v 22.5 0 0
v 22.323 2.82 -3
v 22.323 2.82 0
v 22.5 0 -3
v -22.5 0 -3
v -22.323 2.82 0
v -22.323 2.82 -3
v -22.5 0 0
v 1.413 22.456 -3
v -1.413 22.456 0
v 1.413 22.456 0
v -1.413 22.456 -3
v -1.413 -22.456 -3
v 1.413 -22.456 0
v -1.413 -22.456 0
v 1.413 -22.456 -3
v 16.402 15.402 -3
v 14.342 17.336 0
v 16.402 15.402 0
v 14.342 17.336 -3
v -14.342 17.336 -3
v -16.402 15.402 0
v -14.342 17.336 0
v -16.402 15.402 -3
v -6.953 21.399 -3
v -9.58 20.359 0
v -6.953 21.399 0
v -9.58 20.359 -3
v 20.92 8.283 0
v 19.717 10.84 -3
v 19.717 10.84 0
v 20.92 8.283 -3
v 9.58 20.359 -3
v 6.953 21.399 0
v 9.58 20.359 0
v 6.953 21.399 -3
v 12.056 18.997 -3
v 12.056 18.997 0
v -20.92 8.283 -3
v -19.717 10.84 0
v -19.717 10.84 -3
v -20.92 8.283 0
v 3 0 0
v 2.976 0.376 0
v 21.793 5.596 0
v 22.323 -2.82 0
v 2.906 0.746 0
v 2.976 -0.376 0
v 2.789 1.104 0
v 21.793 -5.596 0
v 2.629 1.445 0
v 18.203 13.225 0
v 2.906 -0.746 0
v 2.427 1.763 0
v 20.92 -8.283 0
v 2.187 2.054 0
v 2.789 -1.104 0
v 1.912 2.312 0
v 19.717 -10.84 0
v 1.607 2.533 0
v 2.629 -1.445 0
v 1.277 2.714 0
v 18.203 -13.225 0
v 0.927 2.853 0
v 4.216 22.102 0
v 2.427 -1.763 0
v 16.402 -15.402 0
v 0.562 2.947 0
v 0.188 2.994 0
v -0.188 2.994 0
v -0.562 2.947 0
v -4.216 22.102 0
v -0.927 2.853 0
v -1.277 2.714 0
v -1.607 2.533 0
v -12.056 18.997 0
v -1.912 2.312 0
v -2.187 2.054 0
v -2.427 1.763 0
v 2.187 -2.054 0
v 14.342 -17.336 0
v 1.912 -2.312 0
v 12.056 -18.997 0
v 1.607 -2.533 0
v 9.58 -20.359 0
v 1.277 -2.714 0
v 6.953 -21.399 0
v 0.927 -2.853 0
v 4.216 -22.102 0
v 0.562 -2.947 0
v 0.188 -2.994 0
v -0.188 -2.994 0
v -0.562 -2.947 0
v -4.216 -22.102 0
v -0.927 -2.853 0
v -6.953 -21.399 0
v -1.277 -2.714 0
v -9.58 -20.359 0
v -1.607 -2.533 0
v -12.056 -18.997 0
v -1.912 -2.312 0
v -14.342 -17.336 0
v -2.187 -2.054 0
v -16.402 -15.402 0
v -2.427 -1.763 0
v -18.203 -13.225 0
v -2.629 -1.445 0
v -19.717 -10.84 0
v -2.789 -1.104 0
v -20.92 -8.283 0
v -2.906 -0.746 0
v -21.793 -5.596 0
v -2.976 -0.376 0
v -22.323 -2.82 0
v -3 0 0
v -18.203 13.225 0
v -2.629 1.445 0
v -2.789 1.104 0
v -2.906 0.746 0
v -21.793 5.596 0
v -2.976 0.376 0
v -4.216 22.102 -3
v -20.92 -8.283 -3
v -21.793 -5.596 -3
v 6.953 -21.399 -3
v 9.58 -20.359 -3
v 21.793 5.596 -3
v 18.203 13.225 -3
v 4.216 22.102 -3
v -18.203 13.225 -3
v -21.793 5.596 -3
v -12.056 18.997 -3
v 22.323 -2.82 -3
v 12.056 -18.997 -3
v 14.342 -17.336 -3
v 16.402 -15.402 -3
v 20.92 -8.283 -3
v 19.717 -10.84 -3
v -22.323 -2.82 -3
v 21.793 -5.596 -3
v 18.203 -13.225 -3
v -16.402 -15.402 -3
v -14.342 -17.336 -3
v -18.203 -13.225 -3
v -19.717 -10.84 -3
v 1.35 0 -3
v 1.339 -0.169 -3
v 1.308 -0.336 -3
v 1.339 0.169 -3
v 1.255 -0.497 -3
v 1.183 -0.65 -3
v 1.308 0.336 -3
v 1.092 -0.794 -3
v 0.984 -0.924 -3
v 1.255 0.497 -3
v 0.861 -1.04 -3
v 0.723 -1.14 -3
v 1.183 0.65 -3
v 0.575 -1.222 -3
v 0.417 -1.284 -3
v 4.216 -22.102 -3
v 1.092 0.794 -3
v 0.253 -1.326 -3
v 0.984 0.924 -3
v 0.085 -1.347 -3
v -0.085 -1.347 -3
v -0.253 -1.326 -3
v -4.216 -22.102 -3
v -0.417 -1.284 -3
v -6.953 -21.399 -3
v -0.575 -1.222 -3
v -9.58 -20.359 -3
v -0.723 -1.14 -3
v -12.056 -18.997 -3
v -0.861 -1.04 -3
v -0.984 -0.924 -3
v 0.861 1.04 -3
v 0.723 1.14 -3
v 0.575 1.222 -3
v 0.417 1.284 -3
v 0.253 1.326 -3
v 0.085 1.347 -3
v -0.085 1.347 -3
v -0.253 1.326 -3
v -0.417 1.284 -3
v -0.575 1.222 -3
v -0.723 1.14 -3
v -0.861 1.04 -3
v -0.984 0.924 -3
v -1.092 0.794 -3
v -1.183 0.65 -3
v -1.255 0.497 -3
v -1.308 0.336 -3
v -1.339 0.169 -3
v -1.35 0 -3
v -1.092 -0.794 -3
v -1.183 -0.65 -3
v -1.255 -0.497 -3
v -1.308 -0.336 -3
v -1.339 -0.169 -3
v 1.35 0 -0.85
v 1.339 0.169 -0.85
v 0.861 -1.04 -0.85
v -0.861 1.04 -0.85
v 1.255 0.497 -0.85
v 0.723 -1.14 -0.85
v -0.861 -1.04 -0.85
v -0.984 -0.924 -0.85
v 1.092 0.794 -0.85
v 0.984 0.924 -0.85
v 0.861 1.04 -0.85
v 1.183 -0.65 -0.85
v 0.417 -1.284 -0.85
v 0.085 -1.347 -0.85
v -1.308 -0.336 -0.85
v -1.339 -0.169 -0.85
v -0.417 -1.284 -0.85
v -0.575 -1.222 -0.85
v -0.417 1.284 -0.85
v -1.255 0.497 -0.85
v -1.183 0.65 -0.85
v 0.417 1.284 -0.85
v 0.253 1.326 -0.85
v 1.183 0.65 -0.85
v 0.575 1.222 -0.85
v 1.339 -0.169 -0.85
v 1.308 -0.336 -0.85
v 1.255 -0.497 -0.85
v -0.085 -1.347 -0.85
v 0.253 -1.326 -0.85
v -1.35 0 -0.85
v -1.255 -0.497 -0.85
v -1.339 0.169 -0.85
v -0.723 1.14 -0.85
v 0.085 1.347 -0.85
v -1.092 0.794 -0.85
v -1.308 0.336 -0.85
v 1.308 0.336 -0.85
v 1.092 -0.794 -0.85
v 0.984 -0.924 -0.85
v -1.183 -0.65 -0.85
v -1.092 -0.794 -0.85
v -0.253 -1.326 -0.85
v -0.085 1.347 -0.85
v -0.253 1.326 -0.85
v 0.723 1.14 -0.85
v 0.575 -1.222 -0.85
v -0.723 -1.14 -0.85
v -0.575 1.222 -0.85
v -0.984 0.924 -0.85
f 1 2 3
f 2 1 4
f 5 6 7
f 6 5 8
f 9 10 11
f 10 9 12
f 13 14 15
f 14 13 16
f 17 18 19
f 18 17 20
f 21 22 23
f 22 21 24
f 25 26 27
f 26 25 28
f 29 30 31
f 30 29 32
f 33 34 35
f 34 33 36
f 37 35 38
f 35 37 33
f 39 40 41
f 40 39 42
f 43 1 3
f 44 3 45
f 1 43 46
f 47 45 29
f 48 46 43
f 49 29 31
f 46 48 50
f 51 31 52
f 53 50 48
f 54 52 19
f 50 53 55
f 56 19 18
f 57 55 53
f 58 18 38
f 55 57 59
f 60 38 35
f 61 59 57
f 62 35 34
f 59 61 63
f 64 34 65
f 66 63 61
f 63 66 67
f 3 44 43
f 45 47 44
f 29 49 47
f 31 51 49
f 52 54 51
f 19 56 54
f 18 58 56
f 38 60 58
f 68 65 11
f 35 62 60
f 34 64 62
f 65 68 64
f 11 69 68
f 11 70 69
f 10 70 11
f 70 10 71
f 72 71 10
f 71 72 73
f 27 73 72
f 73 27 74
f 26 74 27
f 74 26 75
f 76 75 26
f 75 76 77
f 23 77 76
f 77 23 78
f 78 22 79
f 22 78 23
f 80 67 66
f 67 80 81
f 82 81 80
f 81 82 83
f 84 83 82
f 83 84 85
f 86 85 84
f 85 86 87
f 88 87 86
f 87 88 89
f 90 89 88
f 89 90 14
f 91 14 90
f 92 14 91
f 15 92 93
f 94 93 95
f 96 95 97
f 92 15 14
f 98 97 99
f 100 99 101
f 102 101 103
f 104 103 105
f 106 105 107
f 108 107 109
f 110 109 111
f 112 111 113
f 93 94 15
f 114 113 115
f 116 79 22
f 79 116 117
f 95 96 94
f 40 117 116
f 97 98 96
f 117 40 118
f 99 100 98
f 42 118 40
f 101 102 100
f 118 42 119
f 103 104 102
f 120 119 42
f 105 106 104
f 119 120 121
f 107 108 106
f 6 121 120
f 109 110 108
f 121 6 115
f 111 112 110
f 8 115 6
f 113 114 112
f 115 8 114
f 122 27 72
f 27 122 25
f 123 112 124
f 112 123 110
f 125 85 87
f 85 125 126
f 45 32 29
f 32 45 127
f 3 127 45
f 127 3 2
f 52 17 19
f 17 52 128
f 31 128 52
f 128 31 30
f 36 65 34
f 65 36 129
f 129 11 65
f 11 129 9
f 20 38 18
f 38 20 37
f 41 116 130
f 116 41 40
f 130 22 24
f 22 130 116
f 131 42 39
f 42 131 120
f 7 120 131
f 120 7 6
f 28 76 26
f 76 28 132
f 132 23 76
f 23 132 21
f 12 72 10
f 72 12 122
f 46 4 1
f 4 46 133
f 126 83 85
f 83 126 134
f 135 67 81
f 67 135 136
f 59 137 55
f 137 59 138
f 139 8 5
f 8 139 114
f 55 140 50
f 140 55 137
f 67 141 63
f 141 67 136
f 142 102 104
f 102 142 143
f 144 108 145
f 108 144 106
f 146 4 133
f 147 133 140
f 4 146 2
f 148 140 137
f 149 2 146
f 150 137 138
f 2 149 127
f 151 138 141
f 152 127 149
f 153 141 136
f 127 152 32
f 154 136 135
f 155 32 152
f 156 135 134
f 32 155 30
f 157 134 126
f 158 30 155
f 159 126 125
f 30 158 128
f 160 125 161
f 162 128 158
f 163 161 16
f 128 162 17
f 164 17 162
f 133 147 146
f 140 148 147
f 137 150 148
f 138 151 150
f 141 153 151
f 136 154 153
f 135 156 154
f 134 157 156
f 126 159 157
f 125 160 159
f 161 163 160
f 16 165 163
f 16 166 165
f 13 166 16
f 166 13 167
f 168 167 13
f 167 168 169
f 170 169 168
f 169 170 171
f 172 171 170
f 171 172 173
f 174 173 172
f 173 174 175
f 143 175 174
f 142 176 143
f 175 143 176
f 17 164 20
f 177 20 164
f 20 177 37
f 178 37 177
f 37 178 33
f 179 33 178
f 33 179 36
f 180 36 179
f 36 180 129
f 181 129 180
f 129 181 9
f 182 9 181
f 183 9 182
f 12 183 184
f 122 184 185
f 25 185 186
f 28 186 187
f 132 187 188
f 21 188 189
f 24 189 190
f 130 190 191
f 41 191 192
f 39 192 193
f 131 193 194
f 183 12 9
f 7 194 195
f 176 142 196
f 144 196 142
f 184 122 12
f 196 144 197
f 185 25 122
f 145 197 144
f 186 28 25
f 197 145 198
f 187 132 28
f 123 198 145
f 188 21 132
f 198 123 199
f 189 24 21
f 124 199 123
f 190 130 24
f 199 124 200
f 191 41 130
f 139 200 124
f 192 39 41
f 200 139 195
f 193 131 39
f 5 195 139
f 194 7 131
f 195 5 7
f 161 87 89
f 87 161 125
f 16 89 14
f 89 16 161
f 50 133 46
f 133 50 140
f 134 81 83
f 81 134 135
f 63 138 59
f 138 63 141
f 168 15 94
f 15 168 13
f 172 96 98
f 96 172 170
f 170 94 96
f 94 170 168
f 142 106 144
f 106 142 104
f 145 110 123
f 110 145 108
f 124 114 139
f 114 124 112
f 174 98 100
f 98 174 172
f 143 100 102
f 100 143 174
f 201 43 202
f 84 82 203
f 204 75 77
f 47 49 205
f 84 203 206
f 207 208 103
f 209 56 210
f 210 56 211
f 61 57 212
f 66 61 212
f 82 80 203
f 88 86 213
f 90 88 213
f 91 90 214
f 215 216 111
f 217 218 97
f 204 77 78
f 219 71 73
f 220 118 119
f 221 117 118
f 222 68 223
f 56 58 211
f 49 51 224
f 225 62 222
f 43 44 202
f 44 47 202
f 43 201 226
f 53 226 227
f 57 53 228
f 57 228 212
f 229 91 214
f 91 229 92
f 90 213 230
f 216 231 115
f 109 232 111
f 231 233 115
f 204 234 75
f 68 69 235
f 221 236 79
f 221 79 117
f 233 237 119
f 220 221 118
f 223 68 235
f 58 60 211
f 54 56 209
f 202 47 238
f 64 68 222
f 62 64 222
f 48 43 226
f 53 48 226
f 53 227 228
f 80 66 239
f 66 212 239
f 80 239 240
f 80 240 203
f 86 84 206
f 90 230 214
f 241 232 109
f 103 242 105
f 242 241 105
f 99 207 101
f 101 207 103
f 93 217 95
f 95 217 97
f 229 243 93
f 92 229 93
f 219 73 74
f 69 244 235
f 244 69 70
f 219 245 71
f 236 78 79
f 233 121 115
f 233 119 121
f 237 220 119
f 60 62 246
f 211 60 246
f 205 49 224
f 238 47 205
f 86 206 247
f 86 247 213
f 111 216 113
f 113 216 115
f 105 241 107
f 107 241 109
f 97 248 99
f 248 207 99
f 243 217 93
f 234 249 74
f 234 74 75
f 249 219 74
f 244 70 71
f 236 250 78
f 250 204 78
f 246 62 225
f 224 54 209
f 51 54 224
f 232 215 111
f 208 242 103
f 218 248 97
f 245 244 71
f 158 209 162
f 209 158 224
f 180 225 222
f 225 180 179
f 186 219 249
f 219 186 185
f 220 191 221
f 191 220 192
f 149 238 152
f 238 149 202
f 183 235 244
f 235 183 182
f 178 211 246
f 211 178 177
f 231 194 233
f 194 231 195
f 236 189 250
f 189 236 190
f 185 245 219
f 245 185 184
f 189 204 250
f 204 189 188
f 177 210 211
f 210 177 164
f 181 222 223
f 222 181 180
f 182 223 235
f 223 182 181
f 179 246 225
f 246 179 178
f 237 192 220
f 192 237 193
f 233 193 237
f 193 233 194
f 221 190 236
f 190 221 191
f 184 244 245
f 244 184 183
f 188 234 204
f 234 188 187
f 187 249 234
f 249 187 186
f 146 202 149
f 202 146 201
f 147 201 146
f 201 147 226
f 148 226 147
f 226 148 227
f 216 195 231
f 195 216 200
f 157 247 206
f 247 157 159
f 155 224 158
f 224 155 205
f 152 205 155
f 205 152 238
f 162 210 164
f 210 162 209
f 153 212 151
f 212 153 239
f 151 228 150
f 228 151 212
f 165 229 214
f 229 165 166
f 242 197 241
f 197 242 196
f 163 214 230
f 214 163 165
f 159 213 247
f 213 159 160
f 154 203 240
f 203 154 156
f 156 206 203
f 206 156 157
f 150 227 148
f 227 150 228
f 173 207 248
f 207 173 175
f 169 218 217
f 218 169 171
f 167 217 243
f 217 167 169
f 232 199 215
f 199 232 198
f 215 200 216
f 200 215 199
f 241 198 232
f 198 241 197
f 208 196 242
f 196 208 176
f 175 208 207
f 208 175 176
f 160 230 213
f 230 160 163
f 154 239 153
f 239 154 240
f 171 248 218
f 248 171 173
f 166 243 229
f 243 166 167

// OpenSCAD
$fn = 50;


difference() {
	union() {
		translate(v = [0, 0, -3.0000000000]) {
			cylinder(h = 3, r = 22.5000000000);
		}
		translate(v = [0, 0, -3.0000000000]) {
			cylinder(h = 3, r = 2.8750000000);
		}
	}
	union() {
		translate(v = [0, 0, 0]) {
			rotate(a = [0, 0, 0]) {
				difference() {
					union() {
						translate(v = [0, 0, -3.0000000000]) {
							cylinder(h = 3, r = 1.0000000000);
						}
						translate(v = [0, 0, -0.8500000000]) {
							cylinder(h = 0.8500000000, r1 = 1.3500000000, r2 = 3.0000000000);
						}
						translate(v = [0, 0, -3.0000000000]) {
							cylinder(h = 3, r = 1.3500000000);
						}
						translate(v = [0, 0, -3.0000000000]) {
							cylinder(h = 3, r = 1.0000000000);
						}
					}
					union();
				}
			}
		}
	}
}
